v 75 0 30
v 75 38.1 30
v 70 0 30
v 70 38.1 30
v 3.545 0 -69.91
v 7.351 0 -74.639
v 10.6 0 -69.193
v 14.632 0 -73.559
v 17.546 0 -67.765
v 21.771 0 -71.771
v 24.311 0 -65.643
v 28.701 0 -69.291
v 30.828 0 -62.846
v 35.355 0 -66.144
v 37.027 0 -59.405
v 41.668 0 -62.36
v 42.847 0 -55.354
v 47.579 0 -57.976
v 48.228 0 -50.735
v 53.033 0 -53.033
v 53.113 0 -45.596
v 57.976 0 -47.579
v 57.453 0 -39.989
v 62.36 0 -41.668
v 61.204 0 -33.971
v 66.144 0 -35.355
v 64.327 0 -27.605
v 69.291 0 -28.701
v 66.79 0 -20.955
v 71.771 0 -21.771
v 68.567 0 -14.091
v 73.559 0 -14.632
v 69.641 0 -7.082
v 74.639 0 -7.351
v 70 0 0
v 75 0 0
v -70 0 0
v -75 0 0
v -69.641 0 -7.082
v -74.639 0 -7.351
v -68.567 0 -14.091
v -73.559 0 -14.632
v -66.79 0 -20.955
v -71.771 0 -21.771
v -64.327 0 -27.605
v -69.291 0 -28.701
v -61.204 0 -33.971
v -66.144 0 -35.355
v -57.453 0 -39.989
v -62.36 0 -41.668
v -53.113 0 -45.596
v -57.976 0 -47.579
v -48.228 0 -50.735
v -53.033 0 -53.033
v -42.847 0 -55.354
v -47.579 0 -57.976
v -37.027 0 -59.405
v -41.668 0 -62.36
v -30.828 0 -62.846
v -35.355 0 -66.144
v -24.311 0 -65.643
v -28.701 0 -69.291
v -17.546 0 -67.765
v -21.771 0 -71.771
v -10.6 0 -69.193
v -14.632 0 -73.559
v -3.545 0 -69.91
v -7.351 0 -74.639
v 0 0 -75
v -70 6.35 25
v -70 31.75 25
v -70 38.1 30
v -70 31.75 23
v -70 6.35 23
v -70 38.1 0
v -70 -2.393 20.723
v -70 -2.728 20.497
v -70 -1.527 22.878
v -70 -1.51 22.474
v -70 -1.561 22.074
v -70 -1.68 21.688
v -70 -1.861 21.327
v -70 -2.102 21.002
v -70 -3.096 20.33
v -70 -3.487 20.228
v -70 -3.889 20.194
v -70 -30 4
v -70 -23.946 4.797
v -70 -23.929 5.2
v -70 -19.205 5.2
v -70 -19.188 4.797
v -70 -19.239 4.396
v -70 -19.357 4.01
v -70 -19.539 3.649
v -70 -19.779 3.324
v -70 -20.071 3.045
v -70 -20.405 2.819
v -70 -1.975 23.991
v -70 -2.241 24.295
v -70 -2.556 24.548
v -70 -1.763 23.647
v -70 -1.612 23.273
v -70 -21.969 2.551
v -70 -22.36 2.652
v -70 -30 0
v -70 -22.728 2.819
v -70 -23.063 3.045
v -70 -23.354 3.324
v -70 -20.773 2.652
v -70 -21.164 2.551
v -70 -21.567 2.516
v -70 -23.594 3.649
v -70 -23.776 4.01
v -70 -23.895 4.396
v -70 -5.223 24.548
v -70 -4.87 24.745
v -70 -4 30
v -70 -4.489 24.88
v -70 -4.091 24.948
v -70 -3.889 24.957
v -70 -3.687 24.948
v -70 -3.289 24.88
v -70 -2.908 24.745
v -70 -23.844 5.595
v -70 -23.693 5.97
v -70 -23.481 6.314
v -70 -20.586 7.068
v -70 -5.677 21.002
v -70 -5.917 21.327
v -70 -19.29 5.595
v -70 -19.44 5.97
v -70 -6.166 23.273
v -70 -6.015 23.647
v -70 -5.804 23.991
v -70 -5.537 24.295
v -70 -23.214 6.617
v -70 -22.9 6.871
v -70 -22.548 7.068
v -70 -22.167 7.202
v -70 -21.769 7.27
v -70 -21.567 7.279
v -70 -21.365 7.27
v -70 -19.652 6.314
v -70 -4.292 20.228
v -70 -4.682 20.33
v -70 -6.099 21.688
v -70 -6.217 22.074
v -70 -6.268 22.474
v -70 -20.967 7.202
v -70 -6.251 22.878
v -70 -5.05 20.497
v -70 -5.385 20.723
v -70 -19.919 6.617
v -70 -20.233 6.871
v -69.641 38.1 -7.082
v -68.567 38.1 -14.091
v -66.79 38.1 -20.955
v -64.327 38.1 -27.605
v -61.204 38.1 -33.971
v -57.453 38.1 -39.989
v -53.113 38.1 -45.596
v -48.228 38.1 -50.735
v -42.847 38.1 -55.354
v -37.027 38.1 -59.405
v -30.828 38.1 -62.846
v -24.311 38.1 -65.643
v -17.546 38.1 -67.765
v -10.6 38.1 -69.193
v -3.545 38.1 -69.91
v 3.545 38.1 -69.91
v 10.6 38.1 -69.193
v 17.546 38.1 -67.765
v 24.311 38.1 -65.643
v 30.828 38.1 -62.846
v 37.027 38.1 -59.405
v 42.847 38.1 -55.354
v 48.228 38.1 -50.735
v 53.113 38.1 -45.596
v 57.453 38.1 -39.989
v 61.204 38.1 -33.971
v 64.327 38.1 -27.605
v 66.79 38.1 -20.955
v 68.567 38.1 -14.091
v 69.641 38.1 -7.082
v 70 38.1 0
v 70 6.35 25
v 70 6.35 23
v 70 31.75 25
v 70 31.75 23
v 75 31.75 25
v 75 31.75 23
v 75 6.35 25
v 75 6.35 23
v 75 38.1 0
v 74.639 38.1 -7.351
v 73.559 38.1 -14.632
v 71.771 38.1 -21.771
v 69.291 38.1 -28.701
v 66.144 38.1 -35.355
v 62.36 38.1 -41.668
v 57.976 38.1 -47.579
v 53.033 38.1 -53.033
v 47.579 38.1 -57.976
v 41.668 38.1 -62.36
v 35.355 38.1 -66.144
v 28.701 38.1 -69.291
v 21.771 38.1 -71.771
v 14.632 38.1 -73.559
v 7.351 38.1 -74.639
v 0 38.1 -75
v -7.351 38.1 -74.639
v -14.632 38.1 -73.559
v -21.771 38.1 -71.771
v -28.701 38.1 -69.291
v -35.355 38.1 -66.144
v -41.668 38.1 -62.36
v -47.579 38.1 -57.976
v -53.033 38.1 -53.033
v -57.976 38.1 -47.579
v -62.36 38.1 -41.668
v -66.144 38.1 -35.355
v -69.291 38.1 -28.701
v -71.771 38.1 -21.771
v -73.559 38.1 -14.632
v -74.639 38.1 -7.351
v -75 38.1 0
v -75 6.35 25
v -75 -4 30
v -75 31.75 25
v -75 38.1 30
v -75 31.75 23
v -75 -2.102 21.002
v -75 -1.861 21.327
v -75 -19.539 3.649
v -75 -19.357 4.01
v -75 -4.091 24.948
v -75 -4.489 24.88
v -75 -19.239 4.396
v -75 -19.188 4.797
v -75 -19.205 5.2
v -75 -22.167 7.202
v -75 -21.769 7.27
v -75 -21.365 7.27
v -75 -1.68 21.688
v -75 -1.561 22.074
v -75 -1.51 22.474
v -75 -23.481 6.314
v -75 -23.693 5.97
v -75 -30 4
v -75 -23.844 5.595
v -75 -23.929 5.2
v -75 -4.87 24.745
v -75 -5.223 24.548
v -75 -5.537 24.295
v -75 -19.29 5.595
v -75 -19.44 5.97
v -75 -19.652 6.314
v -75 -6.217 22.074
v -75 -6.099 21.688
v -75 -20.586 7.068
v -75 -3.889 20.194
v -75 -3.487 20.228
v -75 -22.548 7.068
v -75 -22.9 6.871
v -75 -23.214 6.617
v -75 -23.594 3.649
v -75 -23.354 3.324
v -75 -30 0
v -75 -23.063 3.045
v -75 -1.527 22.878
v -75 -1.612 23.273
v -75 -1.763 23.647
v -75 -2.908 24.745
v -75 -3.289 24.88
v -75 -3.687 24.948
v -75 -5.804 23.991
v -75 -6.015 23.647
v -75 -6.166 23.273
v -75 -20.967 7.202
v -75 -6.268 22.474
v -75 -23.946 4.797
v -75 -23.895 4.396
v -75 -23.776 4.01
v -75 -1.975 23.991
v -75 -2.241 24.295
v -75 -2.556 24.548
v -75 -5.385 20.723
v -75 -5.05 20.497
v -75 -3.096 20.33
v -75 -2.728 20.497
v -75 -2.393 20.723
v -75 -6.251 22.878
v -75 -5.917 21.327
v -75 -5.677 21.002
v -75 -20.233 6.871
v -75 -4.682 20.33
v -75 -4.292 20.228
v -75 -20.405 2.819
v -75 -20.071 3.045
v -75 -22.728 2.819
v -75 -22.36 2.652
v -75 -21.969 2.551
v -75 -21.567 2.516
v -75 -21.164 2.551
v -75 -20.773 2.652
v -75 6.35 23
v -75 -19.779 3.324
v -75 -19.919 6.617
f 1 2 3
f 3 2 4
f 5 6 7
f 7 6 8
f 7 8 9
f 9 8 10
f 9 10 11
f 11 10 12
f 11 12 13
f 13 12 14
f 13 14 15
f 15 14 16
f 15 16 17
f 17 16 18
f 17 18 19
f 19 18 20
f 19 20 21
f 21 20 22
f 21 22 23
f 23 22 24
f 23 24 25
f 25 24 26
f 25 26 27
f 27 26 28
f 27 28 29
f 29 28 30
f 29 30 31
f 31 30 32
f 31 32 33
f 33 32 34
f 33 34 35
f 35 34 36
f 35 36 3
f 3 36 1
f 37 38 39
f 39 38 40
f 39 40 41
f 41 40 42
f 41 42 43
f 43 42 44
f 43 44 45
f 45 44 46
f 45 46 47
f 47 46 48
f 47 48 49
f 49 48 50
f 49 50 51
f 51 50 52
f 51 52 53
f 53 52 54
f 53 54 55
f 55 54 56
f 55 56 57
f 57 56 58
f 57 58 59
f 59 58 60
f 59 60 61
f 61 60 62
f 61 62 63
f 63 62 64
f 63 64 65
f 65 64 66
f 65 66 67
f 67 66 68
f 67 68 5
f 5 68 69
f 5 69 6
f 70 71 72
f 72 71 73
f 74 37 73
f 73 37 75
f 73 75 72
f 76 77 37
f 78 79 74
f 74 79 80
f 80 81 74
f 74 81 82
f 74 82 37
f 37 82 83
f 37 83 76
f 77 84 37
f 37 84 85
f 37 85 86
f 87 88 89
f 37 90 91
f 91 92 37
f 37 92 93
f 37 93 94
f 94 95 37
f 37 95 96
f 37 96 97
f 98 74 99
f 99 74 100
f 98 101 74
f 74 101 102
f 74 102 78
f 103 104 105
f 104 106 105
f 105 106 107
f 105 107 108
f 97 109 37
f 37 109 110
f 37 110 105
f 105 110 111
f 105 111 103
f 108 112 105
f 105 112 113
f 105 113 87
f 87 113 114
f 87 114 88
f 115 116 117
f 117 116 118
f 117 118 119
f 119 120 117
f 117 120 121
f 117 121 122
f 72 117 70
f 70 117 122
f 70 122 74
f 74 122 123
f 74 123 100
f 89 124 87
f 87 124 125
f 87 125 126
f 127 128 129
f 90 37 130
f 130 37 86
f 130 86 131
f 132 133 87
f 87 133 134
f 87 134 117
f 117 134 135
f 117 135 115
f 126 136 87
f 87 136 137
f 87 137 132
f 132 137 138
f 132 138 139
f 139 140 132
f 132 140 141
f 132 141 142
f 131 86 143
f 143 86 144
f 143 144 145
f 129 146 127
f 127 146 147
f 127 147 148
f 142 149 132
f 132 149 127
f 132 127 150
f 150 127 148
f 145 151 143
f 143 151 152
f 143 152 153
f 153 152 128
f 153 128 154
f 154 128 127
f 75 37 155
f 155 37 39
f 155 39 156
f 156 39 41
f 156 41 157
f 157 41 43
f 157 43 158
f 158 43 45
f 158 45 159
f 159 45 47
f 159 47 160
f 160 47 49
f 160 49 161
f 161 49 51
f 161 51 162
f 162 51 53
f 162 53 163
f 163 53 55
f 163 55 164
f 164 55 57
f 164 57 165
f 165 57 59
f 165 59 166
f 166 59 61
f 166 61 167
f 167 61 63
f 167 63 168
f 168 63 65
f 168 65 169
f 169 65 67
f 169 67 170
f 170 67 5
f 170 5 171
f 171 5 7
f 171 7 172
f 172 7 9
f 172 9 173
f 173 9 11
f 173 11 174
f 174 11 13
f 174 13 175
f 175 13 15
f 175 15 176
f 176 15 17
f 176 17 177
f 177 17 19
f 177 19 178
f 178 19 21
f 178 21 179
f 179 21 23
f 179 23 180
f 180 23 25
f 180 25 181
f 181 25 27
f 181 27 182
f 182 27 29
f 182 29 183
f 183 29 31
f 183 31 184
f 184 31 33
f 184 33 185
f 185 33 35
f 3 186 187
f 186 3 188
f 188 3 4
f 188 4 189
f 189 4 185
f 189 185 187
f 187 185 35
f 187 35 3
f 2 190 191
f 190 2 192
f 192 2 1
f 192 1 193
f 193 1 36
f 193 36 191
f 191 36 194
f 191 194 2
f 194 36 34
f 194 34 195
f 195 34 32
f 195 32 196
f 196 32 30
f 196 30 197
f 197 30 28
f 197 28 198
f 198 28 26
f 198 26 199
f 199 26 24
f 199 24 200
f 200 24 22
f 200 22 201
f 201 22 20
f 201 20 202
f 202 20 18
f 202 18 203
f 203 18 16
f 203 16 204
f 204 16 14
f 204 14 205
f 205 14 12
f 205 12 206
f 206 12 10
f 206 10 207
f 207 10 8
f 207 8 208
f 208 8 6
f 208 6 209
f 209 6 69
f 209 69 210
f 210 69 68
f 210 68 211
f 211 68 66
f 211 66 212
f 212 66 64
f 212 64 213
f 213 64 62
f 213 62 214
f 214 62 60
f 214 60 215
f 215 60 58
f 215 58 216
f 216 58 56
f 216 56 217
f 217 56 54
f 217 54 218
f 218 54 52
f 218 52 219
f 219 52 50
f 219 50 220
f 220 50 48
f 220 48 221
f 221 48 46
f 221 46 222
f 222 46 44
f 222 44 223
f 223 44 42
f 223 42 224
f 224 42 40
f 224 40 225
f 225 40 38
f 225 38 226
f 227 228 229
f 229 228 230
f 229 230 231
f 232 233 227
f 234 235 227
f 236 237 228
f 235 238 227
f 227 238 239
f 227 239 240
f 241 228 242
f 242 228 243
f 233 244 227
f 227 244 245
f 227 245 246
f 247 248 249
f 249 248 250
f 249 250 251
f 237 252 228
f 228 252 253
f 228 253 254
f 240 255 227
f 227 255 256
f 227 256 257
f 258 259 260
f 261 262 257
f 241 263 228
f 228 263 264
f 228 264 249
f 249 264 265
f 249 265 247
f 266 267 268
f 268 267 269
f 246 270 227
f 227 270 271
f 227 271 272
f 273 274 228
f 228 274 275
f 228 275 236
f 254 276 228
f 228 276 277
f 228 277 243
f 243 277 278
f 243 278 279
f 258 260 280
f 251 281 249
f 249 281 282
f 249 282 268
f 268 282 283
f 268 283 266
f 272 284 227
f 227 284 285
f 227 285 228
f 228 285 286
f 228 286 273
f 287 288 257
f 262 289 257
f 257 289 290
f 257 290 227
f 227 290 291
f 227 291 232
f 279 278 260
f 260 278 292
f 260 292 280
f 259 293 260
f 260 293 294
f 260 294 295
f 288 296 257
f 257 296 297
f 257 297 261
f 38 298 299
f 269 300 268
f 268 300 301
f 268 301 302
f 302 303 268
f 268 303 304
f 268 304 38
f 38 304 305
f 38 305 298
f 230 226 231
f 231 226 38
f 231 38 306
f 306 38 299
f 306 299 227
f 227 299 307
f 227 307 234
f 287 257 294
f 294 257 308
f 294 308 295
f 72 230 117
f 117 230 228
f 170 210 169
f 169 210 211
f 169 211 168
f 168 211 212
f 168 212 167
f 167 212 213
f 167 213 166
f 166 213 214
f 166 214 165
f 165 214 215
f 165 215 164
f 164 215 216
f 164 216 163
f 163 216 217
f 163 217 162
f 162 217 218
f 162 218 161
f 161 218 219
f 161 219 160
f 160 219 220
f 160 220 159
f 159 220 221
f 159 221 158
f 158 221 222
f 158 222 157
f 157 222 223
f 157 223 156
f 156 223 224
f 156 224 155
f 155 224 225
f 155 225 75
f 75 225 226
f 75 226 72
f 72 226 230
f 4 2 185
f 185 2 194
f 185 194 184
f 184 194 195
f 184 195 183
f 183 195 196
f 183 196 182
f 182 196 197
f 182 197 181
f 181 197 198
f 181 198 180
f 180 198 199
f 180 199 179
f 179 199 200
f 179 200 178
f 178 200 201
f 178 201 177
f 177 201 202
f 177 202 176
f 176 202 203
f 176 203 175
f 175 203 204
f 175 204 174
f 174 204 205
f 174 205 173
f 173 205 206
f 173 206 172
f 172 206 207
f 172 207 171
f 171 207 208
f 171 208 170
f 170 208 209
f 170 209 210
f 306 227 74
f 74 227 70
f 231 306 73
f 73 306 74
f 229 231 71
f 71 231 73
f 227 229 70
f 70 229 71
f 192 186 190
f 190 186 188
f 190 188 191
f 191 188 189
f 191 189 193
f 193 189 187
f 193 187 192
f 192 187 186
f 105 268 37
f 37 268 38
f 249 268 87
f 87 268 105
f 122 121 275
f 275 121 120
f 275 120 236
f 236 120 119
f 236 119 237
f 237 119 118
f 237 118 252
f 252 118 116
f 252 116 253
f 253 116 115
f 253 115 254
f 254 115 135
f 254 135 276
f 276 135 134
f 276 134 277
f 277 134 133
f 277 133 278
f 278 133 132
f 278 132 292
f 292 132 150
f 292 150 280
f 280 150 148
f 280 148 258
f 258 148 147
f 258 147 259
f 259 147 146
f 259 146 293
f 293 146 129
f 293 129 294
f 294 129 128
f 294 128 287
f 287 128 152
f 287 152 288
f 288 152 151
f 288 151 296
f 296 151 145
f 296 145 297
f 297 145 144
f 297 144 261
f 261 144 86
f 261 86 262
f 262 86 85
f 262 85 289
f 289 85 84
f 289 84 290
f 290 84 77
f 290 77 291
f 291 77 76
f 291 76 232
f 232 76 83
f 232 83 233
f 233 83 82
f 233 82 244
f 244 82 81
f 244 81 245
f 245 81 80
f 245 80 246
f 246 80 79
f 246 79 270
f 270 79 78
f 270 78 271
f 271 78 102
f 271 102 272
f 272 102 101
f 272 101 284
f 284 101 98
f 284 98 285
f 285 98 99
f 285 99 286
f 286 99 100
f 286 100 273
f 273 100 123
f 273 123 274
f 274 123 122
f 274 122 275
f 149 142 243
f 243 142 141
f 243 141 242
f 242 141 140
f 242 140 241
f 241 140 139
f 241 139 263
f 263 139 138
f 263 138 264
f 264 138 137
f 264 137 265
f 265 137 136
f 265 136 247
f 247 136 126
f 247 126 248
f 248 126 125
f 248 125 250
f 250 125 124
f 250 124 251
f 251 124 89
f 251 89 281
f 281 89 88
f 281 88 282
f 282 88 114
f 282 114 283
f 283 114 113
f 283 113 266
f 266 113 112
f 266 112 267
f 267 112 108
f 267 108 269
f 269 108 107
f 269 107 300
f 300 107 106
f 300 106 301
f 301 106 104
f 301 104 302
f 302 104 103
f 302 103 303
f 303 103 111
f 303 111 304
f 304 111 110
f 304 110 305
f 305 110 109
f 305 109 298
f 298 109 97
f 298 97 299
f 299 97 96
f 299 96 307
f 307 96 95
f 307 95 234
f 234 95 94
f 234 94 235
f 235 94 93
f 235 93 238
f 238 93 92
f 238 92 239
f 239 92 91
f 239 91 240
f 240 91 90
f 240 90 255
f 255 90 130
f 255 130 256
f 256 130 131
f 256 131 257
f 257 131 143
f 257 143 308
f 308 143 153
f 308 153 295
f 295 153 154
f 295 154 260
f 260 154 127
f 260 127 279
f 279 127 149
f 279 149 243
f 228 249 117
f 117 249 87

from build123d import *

# Parameters (mm, degrees)
SKETCH1_W           = 5
SKETCH1_H           = 30
BOSS_EXTRUDE1_DEPTH = 38.1
SKETCH2_W           = 2
SKETCH2_H           = 25.4
CUT_EXTRUDE1_DEPTH  = 151
BOSS_EXTRUDE3_DEPTH = 150
CUT_EXTRUDE2_START  = -145
SKETCH4_W           = 32.727499149
SKETCH4_H           = 37.13145561
CUT_EXTRUDE2_DEPTH  = 145


with BuildPart() as part:
    # Sketch1 → Boss-Extrude1 (new body)
    with BuildSketch(Plane(origin=(0, 0, 0), x_dir=(1, 0, 0), z_dir=(0, 1, 0))):
        with Locations((-72.5, -15)):
            Rectangle(SKETCH1_W, SKETCH1_H)
        with BuildLine():
            ThreePointArc((75, 0), (0, 75), (-75, 0))
            Line((-75, 0), (-70, 0))
            ThreePointArc((-70, 0), (0, 70), (70, 0))
            Line((70, 0), (75, 0))
        make_face()
        with Locations((72.5, -15)):
            Rectangle(SKETCH1_W, SKETCH1_H)
    extrude(amount=BOSS_EXTRUDE1_DEPTH)

    # Sketch2 → Cut-Extrude1 (cut, through all)
    with BuildSketch(Plane(origin=(75, 0, 0), x_dir=(0, 0, -1), z_dir=(1, 0, 0))):
        with Locations((-24, 19.05)):
            Rectangle(SKETCH2_W, SKETCH2_H)
    extrude(amount=-CUT_EXTRUDE1_DEPTH, mode=Mode.SUBTRACT)

    # Sketch3 → Boss-Extrude3 (add)
    with BuildSketch(Plane(origin=(75, 0, 0), x_dir=(0, 0, -1), z_dir=(1, 0, 0))):
        Polygon((0, -30), (-30, 0), (-30, -4), (-4, -30), align=None)
        with BuildLine():
            Line((-26.464466094, 0), (-30, 0))
            Line((-30, 0), (0, -30))
            Line((0, -30), (0, -26.464466094))
            Line((0, -26.464466094), (-3.213911245, -23.250554849))
            ThreePointArc((-3.213911245, -23.250554849), (-6.581507291, -23.250554849), (-6.581507291, -19.882958803))
            Line((-6.581507291, -19.882958803), (-20.891580775, -5.572885319))
            ThreePointArc((-20.891580775, -5.572885319), (-24.25917682, -5.572885319), (-24.25917682, -2.205289274))
            Line((-24.25917682, -2.205289274), (-26.464466094, 0))
        make_face()
        with BuildLine():
            Line((-22.928932188, 0), (-26.464466094, 0))
            Line((-26.464466094, 0), (-24.25917682, -2.205289274))
            ThreePointArc((-24.25917682, -2.205289274), (-21.664113874, -1.68909916), (-20.194128798, -3.889087297))
            ThreePointArc((-20.194128798, -3.889087297), (-20.375390661, -4.80035222), (-20.891580775, -5.572885319))
            Line((-20.891580775, -5.572885319), (-6.581507291, -19.882958803))
            ThreePointArc((-6.581507291, -19.882958803), (-3.986444345, -19.366768689), (-2.516459268, -21.566756826))
            ThreePointArc((-2.516459268, -21.566756826), (-2.697721131, -22.47802175), (-3.213911245, -23.250554849))
            Line((-3.213911245, -23.250554849), (0, -26.464466094))
            Line((0, -26.464466094), (0, -22.928932188))
            Line((0, -22.928932188), (-22.928932188, 0))
        make_face()
        Polygon((0, 0), (-22.928932188, 0), (0, -22.928932188), align=None)
    extrude(amount=-BOSS_EXTRUDE3_DEPTH)

    # Sketch4 → Cut-Extrude2 (cut)
    with BuildSketch(Plane(origin=(75, 0, 0), x_dir=(0, 0, -1), z_dir=(1, 0, 0)).offset(CUT_EXTRUDE2_START)):
        with Locations((-16.363749575, -18.565727805)):
            Rectangle(SKETCH4_W, SKETCH4_H)
    extrude(amount=CUT_EXTRUDE2_DEPTH, mode=Mode.SUBTRACT)


solid = part.part
